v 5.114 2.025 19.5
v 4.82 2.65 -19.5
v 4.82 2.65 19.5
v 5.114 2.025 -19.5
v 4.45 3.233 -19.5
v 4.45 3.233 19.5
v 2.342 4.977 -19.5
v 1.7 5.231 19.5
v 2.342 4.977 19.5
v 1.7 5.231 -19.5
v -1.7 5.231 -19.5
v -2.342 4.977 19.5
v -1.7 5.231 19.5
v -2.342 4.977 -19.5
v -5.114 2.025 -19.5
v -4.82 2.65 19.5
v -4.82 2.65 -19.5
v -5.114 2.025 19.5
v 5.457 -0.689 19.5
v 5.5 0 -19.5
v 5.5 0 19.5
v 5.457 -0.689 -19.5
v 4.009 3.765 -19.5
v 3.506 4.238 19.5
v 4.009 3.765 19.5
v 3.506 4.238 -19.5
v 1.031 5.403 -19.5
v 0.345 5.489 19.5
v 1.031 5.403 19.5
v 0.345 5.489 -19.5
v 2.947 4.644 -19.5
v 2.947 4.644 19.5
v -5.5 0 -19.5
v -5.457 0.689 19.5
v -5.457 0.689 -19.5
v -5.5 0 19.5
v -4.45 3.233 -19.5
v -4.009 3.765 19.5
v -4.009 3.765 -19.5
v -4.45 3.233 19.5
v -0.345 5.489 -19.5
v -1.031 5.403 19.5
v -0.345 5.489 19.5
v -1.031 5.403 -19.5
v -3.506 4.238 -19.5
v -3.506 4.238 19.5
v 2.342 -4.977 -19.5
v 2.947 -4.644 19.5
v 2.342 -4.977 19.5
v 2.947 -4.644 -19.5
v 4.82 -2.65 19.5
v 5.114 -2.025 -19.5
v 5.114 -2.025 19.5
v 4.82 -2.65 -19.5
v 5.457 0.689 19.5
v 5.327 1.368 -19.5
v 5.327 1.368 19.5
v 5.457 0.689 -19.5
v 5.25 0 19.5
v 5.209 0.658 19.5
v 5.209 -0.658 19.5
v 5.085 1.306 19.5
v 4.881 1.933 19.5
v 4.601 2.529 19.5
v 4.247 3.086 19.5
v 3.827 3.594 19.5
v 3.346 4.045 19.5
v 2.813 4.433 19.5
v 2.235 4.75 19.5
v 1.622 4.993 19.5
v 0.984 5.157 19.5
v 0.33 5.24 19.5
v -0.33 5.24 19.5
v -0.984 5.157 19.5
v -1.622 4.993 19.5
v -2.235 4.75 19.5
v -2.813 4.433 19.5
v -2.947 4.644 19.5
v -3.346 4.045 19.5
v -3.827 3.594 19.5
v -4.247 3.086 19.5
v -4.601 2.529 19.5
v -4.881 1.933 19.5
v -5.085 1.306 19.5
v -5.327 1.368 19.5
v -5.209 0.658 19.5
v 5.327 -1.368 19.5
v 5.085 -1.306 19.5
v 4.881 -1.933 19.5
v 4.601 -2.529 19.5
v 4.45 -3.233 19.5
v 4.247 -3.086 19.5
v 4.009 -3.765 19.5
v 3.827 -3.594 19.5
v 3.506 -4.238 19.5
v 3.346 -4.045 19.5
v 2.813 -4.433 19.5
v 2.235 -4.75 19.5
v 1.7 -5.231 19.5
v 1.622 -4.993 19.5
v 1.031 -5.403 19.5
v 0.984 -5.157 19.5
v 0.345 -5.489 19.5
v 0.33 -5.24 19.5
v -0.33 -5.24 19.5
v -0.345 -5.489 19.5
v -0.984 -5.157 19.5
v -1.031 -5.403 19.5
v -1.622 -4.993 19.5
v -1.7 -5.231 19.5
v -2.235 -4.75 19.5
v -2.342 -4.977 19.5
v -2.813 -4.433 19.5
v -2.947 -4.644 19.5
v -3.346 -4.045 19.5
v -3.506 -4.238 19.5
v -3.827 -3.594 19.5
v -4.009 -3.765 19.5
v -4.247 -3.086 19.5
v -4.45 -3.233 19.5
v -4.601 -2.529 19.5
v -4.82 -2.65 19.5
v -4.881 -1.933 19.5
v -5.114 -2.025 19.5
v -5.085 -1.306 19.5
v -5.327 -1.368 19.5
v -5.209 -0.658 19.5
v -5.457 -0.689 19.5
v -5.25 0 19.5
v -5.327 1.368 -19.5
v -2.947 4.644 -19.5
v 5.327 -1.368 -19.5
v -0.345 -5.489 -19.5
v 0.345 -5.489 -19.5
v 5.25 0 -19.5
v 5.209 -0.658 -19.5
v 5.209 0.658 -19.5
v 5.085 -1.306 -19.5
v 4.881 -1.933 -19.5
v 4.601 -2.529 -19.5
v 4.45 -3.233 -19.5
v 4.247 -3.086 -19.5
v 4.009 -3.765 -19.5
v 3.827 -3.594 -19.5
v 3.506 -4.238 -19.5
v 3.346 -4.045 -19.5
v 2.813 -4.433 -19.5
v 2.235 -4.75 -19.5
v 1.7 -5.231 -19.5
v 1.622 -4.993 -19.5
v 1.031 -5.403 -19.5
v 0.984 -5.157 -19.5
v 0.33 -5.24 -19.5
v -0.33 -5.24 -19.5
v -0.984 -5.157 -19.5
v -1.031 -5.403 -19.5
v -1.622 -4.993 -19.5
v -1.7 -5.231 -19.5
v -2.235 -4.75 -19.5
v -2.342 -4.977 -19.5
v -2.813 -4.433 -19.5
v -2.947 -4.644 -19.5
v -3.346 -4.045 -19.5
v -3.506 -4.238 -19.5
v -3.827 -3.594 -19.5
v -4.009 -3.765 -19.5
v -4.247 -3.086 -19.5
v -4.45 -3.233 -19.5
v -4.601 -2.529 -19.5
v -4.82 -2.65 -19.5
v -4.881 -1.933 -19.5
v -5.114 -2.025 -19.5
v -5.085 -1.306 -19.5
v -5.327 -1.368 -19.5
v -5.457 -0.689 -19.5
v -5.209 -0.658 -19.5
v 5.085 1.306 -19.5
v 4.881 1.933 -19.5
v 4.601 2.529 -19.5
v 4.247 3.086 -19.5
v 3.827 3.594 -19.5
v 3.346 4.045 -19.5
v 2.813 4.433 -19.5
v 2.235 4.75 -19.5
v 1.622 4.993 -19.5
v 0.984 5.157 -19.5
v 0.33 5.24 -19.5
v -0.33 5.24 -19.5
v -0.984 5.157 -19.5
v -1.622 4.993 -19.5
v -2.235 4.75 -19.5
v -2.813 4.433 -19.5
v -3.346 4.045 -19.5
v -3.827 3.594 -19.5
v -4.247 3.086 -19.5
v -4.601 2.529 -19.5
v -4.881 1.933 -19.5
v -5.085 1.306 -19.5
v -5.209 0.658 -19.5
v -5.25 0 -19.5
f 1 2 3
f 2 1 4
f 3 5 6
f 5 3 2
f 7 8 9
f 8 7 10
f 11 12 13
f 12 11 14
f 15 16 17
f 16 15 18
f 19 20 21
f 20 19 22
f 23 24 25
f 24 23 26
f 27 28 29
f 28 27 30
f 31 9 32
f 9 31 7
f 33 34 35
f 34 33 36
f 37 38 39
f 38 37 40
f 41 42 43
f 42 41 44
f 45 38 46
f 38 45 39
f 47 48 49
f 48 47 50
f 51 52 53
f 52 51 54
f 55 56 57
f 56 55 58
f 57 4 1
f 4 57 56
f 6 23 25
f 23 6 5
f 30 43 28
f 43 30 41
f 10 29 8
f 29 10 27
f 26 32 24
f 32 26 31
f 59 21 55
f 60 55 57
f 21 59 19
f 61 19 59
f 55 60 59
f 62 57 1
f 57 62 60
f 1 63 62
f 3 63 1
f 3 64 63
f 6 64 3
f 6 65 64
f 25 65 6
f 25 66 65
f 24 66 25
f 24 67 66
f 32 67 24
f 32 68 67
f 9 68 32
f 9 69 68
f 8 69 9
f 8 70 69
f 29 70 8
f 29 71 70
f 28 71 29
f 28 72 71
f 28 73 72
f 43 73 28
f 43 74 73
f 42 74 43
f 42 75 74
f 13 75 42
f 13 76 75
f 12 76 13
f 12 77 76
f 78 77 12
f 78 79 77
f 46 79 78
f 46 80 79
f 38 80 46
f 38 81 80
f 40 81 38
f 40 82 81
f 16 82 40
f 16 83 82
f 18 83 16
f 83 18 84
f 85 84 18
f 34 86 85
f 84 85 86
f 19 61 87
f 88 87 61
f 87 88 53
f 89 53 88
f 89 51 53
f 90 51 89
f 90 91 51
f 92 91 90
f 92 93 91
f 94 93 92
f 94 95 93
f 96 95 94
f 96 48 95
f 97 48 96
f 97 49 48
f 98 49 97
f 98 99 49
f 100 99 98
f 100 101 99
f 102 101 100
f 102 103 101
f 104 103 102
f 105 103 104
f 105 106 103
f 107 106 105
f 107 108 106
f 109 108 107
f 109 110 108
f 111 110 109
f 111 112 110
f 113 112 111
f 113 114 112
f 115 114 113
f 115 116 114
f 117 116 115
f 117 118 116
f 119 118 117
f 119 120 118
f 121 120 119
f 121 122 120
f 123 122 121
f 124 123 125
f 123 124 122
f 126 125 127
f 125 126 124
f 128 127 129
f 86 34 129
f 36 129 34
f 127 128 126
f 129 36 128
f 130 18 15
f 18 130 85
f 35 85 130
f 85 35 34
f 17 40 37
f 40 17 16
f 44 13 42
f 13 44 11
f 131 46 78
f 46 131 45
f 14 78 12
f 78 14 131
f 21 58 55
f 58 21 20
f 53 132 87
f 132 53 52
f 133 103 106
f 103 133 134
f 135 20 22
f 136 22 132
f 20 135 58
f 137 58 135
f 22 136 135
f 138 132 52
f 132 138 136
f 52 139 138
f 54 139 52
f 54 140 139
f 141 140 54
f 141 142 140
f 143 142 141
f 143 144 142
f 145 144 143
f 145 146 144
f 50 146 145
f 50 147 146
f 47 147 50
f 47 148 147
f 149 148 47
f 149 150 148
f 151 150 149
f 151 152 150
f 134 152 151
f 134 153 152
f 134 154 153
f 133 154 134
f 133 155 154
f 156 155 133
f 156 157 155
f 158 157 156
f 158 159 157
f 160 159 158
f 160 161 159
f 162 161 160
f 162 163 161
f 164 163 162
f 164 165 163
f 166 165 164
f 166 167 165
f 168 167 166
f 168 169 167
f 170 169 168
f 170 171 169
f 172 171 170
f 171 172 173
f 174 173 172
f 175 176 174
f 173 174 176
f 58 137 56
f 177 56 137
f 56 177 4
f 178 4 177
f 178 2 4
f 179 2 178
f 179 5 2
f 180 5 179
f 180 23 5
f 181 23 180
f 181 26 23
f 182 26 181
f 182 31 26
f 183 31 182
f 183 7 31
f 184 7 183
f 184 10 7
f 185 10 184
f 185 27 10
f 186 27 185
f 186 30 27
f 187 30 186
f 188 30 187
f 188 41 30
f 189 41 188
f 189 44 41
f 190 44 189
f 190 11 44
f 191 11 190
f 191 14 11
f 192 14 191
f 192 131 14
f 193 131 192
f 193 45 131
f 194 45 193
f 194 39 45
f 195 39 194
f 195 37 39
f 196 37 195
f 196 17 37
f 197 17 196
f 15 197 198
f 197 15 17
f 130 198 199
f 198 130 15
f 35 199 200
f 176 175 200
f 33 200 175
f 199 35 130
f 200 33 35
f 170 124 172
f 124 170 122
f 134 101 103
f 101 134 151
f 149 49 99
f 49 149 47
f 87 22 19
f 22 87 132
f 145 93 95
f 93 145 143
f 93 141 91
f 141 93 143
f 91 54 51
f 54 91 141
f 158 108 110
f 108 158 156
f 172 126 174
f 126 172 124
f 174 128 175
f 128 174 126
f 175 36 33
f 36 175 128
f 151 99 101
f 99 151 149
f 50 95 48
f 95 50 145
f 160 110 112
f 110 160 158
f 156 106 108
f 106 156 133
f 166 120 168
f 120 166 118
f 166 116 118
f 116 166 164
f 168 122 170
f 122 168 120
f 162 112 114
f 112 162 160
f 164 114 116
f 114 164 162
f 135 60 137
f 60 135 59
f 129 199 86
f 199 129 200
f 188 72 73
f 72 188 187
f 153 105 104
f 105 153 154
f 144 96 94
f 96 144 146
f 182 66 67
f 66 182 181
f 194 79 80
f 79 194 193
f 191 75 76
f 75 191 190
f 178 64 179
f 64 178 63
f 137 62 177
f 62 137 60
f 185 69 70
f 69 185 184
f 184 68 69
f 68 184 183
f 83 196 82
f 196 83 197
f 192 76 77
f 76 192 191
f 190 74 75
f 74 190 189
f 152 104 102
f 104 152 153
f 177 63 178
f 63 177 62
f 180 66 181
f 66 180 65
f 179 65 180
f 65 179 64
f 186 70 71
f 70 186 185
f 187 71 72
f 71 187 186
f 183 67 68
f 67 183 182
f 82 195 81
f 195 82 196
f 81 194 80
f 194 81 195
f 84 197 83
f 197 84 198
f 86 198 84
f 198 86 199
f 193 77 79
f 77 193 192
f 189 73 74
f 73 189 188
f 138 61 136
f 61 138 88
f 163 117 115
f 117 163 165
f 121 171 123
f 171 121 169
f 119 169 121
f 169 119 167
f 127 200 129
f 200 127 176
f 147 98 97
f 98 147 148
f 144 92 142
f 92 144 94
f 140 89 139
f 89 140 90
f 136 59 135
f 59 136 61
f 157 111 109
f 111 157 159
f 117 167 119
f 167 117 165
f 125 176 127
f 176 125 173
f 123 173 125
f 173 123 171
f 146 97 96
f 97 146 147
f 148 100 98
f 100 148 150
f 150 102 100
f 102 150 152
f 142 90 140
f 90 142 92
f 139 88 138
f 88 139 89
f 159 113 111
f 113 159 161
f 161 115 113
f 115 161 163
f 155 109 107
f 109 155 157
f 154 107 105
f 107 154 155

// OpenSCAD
$fn = 50;


difference() {
	union() {
		translate(v = [0, 0, -19.5000000000]) {
			cylinder(h = 39, r = 5.5000000000);
		}
	}
	union() {
		translate(v = [0, 0, -100.0000000000]) {
			cylinder(h = 200, r = 5.2500000000);
		}
	}
}
